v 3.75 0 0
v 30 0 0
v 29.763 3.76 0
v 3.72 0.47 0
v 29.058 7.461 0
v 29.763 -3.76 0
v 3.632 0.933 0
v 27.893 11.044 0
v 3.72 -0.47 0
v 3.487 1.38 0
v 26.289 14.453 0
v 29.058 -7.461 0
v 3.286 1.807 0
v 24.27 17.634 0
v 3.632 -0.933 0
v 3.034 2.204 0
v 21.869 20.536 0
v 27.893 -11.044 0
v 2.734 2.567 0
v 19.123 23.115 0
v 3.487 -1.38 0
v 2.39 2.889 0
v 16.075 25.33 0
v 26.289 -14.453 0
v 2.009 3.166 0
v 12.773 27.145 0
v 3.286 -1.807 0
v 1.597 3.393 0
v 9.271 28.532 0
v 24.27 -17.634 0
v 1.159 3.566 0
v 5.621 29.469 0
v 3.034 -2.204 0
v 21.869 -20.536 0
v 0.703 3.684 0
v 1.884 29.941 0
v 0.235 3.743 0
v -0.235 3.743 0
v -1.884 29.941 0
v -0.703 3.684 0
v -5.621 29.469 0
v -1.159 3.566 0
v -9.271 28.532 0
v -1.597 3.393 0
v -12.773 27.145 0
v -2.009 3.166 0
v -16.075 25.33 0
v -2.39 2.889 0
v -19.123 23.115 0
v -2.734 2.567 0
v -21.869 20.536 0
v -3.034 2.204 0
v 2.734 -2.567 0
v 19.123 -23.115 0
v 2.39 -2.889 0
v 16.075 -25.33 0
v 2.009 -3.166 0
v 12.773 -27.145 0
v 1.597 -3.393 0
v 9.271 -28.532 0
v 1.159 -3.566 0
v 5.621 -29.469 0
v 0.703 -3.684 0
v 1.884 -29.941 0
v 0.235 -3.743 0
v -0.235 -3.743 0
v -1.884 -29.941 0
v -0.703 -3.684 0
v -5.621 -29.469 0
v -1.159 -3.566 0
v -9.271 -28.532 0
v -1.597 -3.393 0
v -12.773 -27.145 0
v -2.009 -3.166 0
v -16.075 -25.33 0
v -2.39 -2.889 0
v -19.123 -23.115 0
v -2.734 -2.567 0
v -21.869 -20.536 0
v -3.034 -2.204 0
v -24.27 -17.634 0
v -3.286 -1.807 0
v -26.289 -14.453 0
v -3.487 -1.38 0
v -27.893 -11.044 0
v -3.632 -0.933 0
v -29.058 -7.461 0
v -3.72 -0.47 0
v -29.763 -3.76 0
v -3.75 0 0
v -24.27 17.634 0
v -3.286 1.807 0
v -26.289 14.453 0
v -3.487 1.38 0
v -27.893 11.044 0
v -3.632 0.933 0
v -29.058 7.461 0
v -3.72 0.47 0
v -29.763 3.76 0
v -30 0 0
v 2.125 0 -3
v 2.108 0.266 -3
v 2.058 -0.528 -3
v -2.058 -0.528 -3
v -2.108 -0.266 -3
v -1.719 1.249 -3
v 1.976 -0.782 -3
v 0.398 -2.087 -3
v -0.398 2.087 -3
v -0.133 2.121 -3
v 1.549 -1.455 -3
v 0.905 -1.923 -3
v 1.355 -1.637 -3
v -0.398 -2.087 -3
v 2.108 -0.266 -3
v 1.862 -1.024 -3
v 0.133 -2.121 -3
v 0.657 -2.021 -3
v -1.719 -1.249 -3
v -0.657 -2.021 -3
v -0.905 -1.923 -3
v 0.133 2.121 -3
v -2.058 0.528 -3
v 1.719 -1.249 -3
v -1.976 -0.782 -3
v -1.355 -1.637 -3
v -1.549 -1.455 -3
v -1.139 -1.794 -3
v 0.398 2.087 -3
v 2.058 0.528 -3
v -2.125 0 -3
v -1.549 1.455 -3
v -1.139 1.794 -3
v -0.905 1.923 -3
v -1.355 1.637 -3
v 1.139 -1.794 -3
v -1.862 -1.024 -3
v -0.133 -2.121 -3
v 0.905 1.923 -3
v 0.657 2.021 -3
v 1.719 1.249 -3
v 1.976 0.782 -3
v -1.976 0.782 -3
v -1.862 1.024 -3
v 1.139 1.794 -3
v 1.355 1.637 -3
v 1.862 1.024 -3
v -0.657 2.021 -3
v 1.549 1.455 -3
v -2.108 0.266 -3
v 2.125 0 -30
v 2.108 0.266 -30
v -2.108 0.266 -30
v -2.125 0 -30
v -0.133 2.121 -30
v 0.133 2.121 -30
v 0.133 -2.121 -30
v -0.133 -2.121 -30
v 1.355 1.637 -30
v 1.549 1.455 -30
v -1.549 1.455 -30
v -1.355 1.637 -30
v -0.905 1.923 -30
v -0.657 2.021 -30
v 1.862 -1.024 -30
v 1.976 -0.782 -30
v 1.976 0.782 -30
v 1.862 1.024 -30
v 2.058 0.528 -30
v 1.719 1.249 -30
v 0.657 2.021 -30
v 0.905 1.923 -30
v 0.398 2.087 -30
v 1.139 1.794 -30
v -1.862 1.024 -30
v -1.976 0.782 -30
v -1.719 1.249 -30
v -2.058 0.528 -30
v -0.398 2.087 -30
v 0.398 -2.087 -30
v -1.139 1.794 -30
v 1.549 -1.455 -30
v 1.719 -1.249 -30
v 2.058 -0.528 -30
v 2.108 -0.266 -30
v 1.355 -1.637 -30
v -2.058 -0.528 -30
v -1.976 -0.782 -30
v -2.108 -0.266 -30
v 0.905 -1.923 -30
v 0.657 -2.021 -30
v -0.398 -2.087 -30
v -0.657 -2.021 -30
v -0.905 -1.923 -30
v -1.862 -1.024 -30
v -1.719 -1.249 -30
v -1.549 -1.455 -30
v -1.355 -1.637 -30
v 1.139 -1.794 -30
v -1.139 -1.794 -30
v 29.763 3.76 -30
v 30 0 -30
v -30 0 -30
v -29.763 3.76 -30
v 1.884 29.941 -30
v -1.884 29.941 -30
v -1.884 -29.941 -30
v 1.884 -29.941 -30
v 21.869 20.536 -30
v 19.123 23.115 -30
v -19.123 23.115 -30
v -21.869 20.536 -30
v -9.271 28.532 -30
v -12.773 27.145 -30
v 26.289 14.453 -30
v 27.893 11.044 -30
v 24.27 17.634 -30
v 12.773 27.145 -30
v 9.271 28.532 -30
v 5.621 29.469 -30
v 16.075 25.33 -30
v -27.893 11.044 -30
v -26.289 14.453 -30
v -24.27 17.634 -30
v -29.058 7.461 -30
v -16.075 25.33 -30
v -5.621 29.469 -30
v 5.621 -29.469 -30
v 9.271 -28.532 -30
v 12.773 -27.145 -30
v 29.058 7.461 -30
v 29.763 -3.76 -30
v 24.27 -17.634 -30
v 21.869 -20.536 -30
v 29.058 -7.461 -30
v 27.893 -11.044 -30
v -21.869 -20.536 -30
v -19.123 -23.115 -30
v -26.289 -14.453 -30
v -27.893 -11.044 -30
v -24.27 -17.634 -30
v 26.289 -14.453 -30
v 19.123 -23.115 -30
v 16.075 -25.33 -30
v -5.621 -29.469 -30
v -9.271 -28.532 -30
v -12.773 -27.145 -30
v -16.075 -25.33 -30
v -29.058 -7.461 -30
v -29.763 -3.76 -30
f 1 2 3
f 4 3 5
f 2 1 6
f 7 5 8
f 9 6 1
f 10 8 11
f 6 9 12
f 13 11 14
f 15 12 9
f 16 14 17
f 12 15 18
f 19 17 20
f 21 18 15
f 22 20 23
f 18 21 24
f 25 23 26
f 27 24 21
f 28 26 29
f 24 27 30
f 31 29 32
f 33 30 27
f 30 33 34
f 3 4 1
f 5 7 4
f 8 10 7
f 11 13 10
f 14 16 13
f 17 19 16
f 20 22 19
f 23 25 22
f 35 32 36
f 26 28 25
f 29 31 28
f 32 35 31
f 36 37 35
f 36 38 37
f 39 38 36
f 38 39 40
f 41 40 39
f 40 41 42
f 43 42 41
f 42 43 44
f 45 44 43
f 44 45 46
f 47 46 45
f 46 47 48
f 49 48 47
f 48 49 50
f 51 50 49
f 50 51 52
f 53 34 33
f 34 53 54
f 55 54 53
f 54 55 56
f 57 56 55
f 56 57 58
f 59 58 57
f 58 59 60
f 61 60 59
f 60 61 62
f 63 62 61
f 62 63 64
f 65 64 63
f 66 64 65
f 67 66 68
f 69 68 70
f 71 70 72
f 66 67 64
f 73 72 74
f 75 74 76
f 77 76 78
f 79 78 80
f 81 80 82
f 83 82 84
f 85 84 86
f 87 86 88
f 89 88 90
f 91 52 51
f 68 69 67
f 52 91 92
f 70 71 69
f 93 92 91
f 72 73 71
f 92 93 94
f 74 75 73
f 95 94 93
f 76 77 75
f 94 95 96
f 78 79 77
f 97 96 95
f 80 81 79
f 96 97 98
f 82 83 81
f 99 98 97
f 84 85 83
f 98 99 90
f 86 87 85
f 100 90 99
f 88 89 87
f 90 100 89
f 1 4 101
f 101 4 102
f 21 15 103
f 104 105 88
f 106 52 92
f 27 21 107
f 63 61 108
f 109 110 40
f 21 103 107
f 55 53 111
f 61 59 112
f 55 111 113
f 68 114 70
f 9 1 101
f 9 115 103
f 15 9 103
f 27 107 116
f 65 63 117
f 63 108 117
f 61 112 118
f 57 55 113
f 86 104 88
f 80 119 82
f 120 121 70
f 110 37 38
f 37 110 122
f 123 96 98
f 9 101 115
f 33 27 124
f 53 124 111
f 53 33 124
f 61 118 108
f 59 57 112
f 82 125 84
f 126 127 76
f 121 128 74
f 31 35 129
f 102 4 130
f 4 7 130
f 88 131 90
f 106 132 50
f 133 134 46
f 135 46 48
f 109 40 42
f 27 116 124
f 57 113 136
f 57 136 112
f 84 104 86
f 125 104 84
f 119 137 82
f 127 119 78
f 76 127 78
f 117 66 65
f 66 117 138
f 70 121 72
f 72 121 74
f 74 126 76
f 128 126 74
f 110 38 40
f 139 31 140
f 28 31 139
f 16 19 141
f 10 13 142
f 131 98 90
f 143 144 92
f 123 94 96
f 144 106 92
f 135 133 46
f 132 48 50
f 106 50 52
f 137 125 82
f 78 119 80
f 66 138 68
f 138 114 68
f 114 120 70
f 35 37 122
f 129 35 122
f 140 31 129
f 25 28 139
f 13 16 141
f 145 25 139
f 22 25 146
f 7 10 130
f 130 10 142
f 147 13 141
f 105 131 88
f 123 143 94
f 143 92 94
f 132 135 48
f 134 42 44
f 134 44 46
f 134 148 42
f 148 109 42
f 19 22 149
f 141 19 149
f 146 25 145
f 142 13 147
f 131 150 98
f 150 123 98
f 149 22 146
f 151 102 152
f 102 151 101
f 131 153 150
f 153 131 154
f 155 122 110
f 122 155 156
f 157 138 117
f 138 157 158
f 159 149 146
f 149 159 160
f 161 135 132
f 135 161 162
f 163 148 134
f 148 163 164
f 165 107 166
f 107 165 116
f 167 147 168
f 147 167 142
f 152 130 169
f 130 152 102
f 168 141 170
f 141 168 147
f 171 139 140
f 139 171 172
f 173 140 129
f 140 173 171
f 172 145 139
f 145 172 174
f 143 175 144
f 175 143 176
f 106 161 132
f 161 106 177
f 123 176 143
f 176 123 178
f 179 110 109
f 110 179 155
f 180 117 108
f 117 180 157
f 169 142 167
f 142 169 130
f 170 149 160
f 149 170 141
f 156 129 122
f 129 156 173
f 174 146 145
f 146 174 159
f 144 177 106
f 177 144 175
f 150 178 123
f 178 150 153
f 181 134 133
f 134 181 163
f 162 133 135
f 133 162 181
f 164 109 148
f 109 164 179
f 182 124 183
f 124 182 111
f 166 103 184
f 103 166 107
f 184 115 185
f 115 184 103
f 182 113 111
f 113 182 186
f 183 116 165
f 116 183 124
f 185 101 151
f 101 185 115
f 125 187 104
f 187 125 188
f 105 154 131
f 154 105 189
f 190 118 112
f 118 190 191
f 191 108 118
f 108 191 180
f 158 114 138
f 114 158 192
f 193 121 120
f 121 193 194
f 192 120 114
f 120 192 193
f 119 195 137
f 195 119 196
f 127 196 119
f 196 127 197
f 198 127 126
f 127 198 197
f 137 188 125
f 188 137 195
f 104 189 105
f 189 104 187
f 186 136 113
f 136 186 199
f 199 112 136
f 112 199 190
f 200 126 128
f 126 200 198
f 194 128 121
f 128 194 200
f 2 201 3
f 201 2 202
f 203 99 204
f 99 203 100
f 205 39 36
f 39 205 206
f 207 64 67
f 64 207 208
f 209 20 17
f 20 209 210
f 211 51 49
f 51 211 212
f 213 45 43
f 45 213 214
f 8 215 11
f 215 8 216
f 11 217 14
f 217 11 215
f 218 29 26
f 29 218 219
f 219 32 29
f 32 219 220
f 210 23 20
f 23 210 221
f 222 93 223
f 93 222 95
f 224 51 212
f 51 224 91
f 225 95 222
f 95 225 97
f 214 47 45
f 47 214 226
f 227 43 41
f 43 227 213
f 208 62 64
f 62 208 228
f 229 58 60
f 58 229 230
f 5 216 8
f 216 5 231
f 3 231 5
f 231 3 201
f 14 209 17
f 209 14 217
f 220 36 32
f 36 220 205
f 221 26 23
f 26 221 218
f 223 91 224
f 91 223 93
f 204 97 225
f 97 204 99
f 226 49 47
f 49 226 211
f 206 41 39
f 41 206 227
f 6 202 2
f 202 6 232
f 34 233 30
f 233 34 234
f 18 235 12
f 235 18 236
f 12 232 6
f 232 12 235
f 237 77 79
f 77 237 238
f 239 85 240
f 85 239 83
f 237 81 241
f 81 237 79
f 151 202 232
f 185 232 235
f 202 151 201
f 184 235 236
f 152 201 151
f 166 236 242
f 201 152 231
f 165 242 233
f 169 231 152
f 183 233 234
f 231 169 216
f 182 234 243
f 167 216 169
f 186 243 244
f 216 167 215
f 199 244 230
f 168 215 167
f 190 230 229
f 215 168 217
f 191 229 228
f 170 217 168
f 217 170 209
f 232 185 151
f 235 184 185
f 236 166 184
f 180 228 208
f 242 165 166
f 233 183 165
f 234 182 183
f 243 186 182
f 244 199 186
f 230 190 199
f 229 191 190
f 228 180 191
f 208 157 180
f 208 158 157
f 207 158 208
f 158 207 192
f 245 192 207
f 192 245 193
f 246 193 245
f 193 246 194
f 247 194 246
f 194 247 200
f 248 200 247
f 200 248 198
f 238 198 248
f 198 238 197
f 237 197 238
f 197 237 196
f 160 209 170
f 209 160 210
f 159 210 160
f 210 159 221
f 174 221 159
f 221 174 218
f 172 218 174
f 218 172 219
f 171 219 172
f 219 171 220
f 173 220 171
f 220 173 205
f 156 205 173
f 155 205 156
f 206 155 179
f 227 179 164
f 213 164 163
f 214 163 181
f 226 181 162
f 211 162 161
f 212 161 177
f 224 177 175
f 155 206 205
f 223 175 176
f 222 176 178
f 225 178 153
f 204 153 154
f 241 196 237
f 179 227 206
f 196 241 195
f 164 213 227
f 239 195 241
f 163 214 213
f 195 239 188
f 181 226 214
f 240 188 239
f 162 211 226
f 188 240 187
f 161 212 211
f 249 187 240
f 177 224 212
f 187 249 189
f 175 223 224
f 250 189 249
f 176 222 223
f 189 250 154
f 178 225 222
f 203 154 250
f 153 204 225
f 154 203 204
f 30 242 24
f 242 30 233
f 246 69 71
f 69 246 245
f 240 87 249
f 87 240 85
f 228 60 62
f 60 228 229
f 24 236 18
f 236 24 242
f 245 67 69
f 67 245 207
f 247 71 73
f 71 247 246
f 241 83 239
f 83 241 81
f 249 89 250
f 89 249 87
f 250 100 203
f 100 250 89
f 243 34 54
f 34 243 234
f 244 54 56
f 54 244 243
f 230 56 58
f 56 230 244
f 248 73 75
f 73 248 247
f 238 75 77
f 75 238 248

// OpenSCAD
$fn = 50;

difference() {
	union() {
		translate(v = [0, 0, -30.0]) {
			cylinder(h = 30, r = 30.0);
		}
	}
	union() {
		translate(v = [0, 0, 0]) {
			rotate(a = [0, 0, 0]) {
				difference() {
					union() {
						translate(v = [0, 0, -33.0]) {
							cylinder(h = 33, r = 2.0);
						}
						translate(v = [0, 0, -3]) {
							cylinder(h = 3, r1 = 2.125, r2 = 3.75);
						}
						translate(v = [0, 0, -33.0]) {
							cylinder(h = 33, r = 2.125);
						}
						translate(v = [0, 0, -33.0]) {
							cylinder(h = 33, r = 2.0);
						}
					}
					union();
				}
			}
		}
	}
}
